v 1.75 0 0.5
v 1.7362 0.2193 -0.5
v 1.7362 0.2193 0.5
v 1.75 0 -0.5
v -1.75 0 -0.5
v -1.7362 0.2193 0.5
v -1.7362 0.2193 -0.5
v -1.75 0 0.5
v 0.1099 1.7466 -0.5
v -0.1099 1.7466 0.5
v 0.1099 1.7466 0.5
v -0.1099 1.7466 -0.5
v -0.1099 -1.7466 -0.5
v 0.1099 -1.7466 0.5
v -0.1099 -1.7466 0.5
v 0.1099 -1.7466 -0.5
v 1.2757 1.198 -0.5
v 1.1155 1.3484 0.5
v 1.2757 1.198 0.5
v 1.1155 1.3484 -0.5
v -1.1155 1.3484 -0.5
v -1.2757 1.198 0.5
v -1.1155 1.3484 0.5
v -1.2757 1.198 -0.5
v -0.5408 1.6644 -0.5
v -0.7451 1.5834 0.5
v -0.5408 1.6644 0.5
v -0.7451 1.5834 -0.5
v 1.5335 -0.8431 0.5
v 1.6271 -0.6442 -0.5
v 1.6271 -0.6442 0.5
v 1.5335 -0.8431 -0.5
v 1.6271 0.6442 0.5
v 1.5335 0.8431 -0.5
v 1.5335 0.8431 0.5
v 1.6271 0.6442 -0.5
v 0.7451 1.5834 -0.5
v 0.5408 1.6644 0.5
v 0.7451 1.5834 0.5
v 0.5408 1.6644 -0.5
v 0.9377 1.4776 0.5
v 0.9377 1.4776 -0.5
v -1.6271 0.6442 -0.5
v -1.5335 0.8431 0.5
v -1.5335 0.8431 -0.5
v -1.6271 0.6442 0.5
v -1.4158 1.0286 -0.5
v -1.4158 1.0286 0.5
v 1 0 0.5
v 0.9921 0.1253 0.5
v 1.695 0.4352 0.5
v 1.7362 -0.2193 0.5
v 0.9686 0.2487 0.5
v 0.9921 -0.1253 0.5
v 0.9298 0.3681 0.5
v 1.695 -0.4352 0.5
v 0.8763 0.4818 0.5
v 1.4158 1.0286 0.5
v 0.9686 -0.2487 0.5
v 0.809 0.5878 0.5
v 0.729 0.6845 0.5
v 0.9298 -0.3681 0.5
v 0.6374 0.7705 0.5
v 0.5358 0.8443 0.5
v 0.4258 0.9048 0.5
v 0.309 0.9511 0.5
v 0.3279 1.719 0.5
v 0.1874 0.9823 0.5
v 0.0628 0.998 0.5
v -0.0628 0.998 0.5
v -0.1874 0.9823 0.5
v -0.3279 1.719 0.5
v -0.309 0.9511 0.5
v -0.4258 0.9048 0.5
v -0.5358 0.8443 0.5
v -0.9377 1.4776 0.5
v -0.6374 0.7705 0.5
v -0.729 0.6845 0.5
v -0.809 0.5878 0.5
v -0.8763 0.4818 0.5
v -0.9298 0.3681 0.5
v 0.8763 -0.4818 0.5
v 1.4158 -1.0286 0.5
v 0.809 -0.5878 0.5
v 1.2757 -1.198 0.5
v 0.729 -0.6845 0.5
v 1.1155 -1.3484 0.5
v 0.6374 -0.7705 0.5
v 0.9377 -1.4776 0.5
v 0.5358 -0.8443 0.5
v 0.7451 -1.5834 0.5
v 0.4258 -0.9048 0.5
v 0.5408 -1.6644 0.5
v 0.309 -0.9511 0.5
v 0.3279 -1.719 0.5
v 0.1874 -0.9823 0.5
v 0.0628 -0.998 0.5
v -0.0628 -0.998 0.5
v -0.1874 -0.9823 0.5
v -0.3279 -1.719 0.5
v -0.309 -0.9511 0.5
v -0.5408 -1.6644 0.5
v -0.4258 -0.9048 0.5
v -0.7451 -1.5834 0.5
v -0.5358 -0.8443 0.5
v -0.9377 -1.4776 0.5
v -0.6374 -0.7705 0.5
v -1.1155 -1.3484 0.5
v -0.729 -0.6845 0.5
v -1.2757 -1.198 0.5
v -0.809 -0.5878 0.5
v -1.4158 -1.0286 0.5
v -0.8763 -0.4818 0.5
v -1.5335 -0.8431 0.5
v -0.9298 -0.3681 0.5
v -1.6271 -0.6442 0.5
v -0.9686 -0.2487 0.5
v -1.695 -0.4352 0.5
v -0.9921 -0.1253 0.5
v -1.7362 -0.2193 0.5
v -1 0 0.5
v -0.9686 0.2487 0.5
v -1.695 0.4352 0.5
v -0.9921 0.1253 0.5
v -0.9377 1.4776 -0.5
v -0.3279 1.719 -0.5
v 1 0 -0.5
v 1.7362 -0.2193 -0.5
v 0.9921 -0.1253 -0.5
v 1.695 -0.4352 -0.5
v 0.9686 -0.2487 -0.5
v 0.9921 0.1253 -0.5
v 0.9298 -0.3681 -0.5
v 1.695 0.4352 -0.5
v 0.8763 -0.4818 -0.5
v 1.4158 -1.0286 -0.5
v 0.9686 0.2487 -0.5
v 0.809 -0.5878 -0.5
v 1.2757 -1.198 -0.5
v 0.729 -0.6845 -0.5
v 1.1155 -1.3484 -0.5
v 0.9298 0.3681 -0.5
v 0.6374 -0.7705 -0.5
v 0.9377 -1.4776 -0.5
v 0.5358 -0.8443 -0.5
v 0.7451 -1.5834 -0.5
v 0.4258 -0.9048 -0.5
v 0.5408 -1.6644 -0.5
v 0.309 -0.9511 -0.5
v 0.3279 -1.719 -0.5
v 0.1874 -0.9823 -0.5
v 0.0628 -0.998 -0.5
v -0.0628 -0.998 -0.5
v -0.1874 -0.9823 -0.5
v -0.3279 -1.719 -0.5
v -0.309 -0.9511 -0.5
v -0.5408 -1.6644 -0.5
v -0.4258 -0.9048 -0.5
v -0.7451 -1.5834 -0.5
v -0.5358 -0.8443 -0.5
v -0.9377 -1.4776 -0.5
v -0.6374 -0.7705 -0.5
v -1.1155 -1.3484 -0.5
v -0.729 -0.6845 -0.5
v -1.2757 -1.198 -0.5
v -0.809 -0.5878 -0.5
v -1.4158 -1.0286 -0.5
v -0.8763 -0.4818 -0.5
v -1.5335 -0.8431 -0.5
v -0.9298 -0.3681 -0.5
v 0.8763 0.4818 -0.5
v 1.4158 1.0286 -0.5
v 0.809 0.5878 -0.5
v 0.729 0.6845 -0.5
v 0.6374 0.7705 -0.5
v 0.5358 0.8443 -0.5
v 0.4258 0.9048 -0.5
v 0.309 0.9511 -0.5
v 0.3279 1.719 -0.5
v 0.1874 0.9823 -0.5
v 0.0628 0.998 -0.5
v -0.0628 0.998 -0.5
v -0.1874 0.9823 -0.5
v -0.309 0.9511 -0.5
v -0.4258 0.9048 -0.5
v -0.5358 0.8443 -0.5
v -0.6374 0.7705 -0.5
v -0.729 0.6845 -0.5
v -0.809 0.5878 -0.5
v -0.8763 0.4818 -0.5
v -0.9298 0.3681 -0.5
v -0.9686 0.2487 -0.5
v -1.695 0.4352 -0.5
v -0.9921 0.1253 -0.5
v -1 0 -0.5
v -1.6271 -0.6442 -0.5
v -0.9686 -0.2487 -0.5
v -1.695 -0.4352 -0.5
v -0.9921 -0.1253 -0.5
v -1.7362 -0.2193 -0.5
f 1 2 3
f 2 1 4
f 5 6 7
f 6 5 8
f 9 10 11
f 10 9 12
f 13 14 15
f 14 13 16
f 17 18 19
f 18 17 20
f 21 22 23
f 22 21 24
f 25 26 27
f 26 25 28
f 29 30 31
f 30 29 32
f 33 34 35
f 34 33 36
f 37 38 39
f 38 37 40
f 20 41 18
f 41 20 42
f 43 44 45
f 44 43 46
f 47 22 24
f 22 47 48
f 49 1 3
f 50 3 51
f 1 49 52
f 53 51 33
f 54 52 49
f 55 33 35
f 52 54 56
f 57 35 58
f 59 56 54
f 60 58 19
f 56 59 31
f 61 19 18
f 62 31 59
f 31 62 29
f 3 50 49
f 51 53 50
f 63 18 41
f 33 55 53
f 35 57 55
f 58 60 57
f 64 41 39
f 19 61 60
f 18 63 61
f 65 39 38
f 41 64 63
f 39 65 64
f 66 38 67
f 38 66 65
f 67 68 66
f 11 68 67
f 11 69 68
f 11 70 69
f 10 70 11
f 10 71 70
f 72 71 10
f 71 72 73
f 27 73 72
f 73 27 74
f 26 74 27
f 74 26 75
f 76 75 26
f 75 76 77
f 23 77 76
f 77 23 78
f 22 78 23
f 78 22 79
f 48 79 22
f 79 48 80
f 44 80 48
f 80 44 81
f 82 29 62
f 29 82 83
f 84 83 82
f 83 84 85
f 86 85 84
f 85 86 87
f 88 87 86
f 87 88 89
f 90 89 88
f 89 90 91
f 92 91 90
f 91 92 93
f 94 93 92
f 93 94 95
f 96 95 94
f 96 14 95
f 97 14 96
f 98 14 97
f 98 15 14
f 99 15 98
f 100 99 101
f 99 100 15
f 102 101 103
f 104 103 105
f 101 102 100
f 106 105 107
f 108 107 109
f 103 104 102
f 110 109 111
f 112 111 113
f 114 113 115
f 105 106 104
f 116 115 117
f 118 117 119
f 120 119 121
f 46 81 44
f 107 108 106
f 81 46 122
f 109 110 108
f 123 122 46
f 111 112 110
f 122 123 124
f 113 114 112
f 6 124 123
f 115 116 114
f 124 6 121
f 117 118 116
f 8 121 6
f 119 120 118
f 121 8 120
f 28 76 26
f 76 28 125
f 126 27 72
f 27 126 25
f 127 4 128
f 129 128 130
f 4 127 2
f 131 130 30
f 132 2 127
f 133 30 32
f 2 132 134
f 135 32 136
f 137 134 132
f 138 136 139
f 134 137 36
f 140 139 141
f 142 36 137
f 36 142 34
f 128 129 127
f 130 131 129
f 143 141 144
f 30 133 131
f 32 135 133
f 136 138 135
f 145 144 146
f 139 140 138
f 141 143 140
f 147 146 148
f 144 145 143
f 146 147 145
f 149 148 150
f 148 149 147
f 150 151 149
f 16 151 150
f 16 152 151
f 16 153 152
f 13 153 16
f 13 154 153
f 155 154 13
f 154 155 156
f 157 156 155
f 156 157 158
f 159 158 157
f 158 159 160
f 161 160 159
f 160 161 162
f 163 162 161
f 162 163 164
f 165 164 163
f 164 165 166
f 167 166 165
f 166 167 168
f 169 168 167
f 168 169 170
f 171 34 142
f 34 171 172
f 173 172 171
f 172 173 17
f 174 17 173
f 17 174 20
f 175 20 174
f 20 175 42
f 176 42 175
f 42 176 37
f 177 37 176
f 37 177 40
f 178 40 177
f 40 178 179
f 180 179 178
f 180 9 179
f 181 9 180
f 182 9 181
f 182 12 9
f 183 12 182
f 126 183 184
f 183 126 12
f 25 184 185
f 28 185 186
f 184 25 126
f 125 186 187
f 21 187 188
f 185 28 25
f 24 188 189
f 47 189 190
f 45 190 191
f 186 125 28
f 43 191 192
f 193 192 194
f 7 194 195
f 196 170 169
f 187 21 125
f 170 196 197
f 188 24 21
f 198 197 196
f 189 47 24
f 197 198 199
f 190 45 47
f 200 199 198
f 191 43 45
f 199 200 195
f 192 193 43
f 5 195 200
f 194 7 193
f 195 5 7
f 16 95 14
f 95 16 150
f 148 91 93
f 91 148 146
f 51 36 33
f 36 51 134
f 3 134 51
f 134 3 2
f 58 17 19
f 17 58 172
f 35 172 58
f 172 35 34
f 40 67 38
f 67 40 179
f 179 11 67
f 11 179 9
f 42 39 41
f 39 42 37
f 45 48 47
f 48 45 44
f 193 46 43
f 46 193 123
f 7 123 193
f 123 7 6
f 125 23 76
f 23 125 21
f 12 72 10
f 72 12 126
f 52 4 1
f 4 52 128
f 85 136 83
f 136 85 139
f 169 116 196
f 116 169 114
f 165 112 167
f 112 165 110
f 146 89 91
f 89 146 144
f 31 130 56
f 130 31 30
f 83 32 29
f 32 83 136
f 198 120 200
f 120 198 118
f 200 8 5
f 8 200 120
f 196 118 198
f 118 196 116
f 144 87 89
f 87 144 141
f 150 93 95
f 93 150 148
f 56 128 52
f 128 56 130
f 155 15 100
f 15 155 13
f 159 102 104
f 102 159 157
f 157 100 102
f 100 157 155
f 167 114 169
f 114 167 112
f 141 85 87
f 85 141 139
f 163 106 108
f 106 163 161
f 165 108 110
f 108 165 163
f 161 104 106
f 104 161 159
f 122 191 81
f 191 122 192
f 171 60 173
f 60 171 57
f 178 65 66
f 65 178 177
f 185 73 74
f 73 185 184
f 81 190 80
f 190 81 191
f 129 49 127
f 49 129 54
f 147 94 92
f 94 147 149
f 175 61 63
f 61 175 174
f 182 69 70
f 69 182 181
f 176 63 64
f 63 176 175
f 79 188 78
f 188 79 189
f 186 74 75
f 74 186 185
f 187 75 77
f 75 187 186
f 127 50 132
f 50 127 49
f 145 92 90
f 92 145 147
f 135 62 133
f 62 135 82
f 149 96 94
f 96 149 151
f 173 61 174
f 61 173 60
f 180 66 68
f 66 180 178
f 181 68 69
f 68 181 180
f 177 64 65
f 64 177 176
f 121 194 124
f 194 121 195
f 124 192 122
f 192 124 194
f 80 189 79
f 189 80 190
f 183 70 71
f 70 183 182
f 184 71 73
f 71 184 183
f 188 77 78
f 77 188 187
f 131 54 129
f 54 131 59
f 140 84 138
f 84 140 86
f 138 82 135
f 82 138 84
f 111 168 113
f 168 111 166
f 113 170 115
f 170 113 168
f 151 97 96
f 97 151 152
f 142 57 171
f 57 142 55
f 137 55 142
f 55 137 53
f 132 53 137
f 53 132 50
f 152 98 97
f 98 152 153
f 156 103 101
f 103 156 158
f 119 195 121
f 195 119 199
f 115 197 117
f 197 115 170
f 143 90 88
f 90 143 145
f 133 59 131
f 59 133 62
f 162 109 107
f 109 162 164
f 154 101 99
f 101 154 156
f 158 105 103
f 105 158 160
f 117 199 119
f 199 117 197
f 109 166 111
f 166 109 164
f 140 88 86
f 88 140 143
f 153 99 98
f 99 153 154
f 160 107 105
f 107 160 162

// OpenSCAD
$fn = 50;


difference() {
	union() {
		translate(v = [0, 0, -0.5000000000]) {
			cylinder(h = 1, r = 1.7500000000);
		}
	}
	union() {
		translate(v = [0, 0, -100.0000000000]) {
			cylinder(h = 200, r = 1.0000000000);
		}
	}
}
